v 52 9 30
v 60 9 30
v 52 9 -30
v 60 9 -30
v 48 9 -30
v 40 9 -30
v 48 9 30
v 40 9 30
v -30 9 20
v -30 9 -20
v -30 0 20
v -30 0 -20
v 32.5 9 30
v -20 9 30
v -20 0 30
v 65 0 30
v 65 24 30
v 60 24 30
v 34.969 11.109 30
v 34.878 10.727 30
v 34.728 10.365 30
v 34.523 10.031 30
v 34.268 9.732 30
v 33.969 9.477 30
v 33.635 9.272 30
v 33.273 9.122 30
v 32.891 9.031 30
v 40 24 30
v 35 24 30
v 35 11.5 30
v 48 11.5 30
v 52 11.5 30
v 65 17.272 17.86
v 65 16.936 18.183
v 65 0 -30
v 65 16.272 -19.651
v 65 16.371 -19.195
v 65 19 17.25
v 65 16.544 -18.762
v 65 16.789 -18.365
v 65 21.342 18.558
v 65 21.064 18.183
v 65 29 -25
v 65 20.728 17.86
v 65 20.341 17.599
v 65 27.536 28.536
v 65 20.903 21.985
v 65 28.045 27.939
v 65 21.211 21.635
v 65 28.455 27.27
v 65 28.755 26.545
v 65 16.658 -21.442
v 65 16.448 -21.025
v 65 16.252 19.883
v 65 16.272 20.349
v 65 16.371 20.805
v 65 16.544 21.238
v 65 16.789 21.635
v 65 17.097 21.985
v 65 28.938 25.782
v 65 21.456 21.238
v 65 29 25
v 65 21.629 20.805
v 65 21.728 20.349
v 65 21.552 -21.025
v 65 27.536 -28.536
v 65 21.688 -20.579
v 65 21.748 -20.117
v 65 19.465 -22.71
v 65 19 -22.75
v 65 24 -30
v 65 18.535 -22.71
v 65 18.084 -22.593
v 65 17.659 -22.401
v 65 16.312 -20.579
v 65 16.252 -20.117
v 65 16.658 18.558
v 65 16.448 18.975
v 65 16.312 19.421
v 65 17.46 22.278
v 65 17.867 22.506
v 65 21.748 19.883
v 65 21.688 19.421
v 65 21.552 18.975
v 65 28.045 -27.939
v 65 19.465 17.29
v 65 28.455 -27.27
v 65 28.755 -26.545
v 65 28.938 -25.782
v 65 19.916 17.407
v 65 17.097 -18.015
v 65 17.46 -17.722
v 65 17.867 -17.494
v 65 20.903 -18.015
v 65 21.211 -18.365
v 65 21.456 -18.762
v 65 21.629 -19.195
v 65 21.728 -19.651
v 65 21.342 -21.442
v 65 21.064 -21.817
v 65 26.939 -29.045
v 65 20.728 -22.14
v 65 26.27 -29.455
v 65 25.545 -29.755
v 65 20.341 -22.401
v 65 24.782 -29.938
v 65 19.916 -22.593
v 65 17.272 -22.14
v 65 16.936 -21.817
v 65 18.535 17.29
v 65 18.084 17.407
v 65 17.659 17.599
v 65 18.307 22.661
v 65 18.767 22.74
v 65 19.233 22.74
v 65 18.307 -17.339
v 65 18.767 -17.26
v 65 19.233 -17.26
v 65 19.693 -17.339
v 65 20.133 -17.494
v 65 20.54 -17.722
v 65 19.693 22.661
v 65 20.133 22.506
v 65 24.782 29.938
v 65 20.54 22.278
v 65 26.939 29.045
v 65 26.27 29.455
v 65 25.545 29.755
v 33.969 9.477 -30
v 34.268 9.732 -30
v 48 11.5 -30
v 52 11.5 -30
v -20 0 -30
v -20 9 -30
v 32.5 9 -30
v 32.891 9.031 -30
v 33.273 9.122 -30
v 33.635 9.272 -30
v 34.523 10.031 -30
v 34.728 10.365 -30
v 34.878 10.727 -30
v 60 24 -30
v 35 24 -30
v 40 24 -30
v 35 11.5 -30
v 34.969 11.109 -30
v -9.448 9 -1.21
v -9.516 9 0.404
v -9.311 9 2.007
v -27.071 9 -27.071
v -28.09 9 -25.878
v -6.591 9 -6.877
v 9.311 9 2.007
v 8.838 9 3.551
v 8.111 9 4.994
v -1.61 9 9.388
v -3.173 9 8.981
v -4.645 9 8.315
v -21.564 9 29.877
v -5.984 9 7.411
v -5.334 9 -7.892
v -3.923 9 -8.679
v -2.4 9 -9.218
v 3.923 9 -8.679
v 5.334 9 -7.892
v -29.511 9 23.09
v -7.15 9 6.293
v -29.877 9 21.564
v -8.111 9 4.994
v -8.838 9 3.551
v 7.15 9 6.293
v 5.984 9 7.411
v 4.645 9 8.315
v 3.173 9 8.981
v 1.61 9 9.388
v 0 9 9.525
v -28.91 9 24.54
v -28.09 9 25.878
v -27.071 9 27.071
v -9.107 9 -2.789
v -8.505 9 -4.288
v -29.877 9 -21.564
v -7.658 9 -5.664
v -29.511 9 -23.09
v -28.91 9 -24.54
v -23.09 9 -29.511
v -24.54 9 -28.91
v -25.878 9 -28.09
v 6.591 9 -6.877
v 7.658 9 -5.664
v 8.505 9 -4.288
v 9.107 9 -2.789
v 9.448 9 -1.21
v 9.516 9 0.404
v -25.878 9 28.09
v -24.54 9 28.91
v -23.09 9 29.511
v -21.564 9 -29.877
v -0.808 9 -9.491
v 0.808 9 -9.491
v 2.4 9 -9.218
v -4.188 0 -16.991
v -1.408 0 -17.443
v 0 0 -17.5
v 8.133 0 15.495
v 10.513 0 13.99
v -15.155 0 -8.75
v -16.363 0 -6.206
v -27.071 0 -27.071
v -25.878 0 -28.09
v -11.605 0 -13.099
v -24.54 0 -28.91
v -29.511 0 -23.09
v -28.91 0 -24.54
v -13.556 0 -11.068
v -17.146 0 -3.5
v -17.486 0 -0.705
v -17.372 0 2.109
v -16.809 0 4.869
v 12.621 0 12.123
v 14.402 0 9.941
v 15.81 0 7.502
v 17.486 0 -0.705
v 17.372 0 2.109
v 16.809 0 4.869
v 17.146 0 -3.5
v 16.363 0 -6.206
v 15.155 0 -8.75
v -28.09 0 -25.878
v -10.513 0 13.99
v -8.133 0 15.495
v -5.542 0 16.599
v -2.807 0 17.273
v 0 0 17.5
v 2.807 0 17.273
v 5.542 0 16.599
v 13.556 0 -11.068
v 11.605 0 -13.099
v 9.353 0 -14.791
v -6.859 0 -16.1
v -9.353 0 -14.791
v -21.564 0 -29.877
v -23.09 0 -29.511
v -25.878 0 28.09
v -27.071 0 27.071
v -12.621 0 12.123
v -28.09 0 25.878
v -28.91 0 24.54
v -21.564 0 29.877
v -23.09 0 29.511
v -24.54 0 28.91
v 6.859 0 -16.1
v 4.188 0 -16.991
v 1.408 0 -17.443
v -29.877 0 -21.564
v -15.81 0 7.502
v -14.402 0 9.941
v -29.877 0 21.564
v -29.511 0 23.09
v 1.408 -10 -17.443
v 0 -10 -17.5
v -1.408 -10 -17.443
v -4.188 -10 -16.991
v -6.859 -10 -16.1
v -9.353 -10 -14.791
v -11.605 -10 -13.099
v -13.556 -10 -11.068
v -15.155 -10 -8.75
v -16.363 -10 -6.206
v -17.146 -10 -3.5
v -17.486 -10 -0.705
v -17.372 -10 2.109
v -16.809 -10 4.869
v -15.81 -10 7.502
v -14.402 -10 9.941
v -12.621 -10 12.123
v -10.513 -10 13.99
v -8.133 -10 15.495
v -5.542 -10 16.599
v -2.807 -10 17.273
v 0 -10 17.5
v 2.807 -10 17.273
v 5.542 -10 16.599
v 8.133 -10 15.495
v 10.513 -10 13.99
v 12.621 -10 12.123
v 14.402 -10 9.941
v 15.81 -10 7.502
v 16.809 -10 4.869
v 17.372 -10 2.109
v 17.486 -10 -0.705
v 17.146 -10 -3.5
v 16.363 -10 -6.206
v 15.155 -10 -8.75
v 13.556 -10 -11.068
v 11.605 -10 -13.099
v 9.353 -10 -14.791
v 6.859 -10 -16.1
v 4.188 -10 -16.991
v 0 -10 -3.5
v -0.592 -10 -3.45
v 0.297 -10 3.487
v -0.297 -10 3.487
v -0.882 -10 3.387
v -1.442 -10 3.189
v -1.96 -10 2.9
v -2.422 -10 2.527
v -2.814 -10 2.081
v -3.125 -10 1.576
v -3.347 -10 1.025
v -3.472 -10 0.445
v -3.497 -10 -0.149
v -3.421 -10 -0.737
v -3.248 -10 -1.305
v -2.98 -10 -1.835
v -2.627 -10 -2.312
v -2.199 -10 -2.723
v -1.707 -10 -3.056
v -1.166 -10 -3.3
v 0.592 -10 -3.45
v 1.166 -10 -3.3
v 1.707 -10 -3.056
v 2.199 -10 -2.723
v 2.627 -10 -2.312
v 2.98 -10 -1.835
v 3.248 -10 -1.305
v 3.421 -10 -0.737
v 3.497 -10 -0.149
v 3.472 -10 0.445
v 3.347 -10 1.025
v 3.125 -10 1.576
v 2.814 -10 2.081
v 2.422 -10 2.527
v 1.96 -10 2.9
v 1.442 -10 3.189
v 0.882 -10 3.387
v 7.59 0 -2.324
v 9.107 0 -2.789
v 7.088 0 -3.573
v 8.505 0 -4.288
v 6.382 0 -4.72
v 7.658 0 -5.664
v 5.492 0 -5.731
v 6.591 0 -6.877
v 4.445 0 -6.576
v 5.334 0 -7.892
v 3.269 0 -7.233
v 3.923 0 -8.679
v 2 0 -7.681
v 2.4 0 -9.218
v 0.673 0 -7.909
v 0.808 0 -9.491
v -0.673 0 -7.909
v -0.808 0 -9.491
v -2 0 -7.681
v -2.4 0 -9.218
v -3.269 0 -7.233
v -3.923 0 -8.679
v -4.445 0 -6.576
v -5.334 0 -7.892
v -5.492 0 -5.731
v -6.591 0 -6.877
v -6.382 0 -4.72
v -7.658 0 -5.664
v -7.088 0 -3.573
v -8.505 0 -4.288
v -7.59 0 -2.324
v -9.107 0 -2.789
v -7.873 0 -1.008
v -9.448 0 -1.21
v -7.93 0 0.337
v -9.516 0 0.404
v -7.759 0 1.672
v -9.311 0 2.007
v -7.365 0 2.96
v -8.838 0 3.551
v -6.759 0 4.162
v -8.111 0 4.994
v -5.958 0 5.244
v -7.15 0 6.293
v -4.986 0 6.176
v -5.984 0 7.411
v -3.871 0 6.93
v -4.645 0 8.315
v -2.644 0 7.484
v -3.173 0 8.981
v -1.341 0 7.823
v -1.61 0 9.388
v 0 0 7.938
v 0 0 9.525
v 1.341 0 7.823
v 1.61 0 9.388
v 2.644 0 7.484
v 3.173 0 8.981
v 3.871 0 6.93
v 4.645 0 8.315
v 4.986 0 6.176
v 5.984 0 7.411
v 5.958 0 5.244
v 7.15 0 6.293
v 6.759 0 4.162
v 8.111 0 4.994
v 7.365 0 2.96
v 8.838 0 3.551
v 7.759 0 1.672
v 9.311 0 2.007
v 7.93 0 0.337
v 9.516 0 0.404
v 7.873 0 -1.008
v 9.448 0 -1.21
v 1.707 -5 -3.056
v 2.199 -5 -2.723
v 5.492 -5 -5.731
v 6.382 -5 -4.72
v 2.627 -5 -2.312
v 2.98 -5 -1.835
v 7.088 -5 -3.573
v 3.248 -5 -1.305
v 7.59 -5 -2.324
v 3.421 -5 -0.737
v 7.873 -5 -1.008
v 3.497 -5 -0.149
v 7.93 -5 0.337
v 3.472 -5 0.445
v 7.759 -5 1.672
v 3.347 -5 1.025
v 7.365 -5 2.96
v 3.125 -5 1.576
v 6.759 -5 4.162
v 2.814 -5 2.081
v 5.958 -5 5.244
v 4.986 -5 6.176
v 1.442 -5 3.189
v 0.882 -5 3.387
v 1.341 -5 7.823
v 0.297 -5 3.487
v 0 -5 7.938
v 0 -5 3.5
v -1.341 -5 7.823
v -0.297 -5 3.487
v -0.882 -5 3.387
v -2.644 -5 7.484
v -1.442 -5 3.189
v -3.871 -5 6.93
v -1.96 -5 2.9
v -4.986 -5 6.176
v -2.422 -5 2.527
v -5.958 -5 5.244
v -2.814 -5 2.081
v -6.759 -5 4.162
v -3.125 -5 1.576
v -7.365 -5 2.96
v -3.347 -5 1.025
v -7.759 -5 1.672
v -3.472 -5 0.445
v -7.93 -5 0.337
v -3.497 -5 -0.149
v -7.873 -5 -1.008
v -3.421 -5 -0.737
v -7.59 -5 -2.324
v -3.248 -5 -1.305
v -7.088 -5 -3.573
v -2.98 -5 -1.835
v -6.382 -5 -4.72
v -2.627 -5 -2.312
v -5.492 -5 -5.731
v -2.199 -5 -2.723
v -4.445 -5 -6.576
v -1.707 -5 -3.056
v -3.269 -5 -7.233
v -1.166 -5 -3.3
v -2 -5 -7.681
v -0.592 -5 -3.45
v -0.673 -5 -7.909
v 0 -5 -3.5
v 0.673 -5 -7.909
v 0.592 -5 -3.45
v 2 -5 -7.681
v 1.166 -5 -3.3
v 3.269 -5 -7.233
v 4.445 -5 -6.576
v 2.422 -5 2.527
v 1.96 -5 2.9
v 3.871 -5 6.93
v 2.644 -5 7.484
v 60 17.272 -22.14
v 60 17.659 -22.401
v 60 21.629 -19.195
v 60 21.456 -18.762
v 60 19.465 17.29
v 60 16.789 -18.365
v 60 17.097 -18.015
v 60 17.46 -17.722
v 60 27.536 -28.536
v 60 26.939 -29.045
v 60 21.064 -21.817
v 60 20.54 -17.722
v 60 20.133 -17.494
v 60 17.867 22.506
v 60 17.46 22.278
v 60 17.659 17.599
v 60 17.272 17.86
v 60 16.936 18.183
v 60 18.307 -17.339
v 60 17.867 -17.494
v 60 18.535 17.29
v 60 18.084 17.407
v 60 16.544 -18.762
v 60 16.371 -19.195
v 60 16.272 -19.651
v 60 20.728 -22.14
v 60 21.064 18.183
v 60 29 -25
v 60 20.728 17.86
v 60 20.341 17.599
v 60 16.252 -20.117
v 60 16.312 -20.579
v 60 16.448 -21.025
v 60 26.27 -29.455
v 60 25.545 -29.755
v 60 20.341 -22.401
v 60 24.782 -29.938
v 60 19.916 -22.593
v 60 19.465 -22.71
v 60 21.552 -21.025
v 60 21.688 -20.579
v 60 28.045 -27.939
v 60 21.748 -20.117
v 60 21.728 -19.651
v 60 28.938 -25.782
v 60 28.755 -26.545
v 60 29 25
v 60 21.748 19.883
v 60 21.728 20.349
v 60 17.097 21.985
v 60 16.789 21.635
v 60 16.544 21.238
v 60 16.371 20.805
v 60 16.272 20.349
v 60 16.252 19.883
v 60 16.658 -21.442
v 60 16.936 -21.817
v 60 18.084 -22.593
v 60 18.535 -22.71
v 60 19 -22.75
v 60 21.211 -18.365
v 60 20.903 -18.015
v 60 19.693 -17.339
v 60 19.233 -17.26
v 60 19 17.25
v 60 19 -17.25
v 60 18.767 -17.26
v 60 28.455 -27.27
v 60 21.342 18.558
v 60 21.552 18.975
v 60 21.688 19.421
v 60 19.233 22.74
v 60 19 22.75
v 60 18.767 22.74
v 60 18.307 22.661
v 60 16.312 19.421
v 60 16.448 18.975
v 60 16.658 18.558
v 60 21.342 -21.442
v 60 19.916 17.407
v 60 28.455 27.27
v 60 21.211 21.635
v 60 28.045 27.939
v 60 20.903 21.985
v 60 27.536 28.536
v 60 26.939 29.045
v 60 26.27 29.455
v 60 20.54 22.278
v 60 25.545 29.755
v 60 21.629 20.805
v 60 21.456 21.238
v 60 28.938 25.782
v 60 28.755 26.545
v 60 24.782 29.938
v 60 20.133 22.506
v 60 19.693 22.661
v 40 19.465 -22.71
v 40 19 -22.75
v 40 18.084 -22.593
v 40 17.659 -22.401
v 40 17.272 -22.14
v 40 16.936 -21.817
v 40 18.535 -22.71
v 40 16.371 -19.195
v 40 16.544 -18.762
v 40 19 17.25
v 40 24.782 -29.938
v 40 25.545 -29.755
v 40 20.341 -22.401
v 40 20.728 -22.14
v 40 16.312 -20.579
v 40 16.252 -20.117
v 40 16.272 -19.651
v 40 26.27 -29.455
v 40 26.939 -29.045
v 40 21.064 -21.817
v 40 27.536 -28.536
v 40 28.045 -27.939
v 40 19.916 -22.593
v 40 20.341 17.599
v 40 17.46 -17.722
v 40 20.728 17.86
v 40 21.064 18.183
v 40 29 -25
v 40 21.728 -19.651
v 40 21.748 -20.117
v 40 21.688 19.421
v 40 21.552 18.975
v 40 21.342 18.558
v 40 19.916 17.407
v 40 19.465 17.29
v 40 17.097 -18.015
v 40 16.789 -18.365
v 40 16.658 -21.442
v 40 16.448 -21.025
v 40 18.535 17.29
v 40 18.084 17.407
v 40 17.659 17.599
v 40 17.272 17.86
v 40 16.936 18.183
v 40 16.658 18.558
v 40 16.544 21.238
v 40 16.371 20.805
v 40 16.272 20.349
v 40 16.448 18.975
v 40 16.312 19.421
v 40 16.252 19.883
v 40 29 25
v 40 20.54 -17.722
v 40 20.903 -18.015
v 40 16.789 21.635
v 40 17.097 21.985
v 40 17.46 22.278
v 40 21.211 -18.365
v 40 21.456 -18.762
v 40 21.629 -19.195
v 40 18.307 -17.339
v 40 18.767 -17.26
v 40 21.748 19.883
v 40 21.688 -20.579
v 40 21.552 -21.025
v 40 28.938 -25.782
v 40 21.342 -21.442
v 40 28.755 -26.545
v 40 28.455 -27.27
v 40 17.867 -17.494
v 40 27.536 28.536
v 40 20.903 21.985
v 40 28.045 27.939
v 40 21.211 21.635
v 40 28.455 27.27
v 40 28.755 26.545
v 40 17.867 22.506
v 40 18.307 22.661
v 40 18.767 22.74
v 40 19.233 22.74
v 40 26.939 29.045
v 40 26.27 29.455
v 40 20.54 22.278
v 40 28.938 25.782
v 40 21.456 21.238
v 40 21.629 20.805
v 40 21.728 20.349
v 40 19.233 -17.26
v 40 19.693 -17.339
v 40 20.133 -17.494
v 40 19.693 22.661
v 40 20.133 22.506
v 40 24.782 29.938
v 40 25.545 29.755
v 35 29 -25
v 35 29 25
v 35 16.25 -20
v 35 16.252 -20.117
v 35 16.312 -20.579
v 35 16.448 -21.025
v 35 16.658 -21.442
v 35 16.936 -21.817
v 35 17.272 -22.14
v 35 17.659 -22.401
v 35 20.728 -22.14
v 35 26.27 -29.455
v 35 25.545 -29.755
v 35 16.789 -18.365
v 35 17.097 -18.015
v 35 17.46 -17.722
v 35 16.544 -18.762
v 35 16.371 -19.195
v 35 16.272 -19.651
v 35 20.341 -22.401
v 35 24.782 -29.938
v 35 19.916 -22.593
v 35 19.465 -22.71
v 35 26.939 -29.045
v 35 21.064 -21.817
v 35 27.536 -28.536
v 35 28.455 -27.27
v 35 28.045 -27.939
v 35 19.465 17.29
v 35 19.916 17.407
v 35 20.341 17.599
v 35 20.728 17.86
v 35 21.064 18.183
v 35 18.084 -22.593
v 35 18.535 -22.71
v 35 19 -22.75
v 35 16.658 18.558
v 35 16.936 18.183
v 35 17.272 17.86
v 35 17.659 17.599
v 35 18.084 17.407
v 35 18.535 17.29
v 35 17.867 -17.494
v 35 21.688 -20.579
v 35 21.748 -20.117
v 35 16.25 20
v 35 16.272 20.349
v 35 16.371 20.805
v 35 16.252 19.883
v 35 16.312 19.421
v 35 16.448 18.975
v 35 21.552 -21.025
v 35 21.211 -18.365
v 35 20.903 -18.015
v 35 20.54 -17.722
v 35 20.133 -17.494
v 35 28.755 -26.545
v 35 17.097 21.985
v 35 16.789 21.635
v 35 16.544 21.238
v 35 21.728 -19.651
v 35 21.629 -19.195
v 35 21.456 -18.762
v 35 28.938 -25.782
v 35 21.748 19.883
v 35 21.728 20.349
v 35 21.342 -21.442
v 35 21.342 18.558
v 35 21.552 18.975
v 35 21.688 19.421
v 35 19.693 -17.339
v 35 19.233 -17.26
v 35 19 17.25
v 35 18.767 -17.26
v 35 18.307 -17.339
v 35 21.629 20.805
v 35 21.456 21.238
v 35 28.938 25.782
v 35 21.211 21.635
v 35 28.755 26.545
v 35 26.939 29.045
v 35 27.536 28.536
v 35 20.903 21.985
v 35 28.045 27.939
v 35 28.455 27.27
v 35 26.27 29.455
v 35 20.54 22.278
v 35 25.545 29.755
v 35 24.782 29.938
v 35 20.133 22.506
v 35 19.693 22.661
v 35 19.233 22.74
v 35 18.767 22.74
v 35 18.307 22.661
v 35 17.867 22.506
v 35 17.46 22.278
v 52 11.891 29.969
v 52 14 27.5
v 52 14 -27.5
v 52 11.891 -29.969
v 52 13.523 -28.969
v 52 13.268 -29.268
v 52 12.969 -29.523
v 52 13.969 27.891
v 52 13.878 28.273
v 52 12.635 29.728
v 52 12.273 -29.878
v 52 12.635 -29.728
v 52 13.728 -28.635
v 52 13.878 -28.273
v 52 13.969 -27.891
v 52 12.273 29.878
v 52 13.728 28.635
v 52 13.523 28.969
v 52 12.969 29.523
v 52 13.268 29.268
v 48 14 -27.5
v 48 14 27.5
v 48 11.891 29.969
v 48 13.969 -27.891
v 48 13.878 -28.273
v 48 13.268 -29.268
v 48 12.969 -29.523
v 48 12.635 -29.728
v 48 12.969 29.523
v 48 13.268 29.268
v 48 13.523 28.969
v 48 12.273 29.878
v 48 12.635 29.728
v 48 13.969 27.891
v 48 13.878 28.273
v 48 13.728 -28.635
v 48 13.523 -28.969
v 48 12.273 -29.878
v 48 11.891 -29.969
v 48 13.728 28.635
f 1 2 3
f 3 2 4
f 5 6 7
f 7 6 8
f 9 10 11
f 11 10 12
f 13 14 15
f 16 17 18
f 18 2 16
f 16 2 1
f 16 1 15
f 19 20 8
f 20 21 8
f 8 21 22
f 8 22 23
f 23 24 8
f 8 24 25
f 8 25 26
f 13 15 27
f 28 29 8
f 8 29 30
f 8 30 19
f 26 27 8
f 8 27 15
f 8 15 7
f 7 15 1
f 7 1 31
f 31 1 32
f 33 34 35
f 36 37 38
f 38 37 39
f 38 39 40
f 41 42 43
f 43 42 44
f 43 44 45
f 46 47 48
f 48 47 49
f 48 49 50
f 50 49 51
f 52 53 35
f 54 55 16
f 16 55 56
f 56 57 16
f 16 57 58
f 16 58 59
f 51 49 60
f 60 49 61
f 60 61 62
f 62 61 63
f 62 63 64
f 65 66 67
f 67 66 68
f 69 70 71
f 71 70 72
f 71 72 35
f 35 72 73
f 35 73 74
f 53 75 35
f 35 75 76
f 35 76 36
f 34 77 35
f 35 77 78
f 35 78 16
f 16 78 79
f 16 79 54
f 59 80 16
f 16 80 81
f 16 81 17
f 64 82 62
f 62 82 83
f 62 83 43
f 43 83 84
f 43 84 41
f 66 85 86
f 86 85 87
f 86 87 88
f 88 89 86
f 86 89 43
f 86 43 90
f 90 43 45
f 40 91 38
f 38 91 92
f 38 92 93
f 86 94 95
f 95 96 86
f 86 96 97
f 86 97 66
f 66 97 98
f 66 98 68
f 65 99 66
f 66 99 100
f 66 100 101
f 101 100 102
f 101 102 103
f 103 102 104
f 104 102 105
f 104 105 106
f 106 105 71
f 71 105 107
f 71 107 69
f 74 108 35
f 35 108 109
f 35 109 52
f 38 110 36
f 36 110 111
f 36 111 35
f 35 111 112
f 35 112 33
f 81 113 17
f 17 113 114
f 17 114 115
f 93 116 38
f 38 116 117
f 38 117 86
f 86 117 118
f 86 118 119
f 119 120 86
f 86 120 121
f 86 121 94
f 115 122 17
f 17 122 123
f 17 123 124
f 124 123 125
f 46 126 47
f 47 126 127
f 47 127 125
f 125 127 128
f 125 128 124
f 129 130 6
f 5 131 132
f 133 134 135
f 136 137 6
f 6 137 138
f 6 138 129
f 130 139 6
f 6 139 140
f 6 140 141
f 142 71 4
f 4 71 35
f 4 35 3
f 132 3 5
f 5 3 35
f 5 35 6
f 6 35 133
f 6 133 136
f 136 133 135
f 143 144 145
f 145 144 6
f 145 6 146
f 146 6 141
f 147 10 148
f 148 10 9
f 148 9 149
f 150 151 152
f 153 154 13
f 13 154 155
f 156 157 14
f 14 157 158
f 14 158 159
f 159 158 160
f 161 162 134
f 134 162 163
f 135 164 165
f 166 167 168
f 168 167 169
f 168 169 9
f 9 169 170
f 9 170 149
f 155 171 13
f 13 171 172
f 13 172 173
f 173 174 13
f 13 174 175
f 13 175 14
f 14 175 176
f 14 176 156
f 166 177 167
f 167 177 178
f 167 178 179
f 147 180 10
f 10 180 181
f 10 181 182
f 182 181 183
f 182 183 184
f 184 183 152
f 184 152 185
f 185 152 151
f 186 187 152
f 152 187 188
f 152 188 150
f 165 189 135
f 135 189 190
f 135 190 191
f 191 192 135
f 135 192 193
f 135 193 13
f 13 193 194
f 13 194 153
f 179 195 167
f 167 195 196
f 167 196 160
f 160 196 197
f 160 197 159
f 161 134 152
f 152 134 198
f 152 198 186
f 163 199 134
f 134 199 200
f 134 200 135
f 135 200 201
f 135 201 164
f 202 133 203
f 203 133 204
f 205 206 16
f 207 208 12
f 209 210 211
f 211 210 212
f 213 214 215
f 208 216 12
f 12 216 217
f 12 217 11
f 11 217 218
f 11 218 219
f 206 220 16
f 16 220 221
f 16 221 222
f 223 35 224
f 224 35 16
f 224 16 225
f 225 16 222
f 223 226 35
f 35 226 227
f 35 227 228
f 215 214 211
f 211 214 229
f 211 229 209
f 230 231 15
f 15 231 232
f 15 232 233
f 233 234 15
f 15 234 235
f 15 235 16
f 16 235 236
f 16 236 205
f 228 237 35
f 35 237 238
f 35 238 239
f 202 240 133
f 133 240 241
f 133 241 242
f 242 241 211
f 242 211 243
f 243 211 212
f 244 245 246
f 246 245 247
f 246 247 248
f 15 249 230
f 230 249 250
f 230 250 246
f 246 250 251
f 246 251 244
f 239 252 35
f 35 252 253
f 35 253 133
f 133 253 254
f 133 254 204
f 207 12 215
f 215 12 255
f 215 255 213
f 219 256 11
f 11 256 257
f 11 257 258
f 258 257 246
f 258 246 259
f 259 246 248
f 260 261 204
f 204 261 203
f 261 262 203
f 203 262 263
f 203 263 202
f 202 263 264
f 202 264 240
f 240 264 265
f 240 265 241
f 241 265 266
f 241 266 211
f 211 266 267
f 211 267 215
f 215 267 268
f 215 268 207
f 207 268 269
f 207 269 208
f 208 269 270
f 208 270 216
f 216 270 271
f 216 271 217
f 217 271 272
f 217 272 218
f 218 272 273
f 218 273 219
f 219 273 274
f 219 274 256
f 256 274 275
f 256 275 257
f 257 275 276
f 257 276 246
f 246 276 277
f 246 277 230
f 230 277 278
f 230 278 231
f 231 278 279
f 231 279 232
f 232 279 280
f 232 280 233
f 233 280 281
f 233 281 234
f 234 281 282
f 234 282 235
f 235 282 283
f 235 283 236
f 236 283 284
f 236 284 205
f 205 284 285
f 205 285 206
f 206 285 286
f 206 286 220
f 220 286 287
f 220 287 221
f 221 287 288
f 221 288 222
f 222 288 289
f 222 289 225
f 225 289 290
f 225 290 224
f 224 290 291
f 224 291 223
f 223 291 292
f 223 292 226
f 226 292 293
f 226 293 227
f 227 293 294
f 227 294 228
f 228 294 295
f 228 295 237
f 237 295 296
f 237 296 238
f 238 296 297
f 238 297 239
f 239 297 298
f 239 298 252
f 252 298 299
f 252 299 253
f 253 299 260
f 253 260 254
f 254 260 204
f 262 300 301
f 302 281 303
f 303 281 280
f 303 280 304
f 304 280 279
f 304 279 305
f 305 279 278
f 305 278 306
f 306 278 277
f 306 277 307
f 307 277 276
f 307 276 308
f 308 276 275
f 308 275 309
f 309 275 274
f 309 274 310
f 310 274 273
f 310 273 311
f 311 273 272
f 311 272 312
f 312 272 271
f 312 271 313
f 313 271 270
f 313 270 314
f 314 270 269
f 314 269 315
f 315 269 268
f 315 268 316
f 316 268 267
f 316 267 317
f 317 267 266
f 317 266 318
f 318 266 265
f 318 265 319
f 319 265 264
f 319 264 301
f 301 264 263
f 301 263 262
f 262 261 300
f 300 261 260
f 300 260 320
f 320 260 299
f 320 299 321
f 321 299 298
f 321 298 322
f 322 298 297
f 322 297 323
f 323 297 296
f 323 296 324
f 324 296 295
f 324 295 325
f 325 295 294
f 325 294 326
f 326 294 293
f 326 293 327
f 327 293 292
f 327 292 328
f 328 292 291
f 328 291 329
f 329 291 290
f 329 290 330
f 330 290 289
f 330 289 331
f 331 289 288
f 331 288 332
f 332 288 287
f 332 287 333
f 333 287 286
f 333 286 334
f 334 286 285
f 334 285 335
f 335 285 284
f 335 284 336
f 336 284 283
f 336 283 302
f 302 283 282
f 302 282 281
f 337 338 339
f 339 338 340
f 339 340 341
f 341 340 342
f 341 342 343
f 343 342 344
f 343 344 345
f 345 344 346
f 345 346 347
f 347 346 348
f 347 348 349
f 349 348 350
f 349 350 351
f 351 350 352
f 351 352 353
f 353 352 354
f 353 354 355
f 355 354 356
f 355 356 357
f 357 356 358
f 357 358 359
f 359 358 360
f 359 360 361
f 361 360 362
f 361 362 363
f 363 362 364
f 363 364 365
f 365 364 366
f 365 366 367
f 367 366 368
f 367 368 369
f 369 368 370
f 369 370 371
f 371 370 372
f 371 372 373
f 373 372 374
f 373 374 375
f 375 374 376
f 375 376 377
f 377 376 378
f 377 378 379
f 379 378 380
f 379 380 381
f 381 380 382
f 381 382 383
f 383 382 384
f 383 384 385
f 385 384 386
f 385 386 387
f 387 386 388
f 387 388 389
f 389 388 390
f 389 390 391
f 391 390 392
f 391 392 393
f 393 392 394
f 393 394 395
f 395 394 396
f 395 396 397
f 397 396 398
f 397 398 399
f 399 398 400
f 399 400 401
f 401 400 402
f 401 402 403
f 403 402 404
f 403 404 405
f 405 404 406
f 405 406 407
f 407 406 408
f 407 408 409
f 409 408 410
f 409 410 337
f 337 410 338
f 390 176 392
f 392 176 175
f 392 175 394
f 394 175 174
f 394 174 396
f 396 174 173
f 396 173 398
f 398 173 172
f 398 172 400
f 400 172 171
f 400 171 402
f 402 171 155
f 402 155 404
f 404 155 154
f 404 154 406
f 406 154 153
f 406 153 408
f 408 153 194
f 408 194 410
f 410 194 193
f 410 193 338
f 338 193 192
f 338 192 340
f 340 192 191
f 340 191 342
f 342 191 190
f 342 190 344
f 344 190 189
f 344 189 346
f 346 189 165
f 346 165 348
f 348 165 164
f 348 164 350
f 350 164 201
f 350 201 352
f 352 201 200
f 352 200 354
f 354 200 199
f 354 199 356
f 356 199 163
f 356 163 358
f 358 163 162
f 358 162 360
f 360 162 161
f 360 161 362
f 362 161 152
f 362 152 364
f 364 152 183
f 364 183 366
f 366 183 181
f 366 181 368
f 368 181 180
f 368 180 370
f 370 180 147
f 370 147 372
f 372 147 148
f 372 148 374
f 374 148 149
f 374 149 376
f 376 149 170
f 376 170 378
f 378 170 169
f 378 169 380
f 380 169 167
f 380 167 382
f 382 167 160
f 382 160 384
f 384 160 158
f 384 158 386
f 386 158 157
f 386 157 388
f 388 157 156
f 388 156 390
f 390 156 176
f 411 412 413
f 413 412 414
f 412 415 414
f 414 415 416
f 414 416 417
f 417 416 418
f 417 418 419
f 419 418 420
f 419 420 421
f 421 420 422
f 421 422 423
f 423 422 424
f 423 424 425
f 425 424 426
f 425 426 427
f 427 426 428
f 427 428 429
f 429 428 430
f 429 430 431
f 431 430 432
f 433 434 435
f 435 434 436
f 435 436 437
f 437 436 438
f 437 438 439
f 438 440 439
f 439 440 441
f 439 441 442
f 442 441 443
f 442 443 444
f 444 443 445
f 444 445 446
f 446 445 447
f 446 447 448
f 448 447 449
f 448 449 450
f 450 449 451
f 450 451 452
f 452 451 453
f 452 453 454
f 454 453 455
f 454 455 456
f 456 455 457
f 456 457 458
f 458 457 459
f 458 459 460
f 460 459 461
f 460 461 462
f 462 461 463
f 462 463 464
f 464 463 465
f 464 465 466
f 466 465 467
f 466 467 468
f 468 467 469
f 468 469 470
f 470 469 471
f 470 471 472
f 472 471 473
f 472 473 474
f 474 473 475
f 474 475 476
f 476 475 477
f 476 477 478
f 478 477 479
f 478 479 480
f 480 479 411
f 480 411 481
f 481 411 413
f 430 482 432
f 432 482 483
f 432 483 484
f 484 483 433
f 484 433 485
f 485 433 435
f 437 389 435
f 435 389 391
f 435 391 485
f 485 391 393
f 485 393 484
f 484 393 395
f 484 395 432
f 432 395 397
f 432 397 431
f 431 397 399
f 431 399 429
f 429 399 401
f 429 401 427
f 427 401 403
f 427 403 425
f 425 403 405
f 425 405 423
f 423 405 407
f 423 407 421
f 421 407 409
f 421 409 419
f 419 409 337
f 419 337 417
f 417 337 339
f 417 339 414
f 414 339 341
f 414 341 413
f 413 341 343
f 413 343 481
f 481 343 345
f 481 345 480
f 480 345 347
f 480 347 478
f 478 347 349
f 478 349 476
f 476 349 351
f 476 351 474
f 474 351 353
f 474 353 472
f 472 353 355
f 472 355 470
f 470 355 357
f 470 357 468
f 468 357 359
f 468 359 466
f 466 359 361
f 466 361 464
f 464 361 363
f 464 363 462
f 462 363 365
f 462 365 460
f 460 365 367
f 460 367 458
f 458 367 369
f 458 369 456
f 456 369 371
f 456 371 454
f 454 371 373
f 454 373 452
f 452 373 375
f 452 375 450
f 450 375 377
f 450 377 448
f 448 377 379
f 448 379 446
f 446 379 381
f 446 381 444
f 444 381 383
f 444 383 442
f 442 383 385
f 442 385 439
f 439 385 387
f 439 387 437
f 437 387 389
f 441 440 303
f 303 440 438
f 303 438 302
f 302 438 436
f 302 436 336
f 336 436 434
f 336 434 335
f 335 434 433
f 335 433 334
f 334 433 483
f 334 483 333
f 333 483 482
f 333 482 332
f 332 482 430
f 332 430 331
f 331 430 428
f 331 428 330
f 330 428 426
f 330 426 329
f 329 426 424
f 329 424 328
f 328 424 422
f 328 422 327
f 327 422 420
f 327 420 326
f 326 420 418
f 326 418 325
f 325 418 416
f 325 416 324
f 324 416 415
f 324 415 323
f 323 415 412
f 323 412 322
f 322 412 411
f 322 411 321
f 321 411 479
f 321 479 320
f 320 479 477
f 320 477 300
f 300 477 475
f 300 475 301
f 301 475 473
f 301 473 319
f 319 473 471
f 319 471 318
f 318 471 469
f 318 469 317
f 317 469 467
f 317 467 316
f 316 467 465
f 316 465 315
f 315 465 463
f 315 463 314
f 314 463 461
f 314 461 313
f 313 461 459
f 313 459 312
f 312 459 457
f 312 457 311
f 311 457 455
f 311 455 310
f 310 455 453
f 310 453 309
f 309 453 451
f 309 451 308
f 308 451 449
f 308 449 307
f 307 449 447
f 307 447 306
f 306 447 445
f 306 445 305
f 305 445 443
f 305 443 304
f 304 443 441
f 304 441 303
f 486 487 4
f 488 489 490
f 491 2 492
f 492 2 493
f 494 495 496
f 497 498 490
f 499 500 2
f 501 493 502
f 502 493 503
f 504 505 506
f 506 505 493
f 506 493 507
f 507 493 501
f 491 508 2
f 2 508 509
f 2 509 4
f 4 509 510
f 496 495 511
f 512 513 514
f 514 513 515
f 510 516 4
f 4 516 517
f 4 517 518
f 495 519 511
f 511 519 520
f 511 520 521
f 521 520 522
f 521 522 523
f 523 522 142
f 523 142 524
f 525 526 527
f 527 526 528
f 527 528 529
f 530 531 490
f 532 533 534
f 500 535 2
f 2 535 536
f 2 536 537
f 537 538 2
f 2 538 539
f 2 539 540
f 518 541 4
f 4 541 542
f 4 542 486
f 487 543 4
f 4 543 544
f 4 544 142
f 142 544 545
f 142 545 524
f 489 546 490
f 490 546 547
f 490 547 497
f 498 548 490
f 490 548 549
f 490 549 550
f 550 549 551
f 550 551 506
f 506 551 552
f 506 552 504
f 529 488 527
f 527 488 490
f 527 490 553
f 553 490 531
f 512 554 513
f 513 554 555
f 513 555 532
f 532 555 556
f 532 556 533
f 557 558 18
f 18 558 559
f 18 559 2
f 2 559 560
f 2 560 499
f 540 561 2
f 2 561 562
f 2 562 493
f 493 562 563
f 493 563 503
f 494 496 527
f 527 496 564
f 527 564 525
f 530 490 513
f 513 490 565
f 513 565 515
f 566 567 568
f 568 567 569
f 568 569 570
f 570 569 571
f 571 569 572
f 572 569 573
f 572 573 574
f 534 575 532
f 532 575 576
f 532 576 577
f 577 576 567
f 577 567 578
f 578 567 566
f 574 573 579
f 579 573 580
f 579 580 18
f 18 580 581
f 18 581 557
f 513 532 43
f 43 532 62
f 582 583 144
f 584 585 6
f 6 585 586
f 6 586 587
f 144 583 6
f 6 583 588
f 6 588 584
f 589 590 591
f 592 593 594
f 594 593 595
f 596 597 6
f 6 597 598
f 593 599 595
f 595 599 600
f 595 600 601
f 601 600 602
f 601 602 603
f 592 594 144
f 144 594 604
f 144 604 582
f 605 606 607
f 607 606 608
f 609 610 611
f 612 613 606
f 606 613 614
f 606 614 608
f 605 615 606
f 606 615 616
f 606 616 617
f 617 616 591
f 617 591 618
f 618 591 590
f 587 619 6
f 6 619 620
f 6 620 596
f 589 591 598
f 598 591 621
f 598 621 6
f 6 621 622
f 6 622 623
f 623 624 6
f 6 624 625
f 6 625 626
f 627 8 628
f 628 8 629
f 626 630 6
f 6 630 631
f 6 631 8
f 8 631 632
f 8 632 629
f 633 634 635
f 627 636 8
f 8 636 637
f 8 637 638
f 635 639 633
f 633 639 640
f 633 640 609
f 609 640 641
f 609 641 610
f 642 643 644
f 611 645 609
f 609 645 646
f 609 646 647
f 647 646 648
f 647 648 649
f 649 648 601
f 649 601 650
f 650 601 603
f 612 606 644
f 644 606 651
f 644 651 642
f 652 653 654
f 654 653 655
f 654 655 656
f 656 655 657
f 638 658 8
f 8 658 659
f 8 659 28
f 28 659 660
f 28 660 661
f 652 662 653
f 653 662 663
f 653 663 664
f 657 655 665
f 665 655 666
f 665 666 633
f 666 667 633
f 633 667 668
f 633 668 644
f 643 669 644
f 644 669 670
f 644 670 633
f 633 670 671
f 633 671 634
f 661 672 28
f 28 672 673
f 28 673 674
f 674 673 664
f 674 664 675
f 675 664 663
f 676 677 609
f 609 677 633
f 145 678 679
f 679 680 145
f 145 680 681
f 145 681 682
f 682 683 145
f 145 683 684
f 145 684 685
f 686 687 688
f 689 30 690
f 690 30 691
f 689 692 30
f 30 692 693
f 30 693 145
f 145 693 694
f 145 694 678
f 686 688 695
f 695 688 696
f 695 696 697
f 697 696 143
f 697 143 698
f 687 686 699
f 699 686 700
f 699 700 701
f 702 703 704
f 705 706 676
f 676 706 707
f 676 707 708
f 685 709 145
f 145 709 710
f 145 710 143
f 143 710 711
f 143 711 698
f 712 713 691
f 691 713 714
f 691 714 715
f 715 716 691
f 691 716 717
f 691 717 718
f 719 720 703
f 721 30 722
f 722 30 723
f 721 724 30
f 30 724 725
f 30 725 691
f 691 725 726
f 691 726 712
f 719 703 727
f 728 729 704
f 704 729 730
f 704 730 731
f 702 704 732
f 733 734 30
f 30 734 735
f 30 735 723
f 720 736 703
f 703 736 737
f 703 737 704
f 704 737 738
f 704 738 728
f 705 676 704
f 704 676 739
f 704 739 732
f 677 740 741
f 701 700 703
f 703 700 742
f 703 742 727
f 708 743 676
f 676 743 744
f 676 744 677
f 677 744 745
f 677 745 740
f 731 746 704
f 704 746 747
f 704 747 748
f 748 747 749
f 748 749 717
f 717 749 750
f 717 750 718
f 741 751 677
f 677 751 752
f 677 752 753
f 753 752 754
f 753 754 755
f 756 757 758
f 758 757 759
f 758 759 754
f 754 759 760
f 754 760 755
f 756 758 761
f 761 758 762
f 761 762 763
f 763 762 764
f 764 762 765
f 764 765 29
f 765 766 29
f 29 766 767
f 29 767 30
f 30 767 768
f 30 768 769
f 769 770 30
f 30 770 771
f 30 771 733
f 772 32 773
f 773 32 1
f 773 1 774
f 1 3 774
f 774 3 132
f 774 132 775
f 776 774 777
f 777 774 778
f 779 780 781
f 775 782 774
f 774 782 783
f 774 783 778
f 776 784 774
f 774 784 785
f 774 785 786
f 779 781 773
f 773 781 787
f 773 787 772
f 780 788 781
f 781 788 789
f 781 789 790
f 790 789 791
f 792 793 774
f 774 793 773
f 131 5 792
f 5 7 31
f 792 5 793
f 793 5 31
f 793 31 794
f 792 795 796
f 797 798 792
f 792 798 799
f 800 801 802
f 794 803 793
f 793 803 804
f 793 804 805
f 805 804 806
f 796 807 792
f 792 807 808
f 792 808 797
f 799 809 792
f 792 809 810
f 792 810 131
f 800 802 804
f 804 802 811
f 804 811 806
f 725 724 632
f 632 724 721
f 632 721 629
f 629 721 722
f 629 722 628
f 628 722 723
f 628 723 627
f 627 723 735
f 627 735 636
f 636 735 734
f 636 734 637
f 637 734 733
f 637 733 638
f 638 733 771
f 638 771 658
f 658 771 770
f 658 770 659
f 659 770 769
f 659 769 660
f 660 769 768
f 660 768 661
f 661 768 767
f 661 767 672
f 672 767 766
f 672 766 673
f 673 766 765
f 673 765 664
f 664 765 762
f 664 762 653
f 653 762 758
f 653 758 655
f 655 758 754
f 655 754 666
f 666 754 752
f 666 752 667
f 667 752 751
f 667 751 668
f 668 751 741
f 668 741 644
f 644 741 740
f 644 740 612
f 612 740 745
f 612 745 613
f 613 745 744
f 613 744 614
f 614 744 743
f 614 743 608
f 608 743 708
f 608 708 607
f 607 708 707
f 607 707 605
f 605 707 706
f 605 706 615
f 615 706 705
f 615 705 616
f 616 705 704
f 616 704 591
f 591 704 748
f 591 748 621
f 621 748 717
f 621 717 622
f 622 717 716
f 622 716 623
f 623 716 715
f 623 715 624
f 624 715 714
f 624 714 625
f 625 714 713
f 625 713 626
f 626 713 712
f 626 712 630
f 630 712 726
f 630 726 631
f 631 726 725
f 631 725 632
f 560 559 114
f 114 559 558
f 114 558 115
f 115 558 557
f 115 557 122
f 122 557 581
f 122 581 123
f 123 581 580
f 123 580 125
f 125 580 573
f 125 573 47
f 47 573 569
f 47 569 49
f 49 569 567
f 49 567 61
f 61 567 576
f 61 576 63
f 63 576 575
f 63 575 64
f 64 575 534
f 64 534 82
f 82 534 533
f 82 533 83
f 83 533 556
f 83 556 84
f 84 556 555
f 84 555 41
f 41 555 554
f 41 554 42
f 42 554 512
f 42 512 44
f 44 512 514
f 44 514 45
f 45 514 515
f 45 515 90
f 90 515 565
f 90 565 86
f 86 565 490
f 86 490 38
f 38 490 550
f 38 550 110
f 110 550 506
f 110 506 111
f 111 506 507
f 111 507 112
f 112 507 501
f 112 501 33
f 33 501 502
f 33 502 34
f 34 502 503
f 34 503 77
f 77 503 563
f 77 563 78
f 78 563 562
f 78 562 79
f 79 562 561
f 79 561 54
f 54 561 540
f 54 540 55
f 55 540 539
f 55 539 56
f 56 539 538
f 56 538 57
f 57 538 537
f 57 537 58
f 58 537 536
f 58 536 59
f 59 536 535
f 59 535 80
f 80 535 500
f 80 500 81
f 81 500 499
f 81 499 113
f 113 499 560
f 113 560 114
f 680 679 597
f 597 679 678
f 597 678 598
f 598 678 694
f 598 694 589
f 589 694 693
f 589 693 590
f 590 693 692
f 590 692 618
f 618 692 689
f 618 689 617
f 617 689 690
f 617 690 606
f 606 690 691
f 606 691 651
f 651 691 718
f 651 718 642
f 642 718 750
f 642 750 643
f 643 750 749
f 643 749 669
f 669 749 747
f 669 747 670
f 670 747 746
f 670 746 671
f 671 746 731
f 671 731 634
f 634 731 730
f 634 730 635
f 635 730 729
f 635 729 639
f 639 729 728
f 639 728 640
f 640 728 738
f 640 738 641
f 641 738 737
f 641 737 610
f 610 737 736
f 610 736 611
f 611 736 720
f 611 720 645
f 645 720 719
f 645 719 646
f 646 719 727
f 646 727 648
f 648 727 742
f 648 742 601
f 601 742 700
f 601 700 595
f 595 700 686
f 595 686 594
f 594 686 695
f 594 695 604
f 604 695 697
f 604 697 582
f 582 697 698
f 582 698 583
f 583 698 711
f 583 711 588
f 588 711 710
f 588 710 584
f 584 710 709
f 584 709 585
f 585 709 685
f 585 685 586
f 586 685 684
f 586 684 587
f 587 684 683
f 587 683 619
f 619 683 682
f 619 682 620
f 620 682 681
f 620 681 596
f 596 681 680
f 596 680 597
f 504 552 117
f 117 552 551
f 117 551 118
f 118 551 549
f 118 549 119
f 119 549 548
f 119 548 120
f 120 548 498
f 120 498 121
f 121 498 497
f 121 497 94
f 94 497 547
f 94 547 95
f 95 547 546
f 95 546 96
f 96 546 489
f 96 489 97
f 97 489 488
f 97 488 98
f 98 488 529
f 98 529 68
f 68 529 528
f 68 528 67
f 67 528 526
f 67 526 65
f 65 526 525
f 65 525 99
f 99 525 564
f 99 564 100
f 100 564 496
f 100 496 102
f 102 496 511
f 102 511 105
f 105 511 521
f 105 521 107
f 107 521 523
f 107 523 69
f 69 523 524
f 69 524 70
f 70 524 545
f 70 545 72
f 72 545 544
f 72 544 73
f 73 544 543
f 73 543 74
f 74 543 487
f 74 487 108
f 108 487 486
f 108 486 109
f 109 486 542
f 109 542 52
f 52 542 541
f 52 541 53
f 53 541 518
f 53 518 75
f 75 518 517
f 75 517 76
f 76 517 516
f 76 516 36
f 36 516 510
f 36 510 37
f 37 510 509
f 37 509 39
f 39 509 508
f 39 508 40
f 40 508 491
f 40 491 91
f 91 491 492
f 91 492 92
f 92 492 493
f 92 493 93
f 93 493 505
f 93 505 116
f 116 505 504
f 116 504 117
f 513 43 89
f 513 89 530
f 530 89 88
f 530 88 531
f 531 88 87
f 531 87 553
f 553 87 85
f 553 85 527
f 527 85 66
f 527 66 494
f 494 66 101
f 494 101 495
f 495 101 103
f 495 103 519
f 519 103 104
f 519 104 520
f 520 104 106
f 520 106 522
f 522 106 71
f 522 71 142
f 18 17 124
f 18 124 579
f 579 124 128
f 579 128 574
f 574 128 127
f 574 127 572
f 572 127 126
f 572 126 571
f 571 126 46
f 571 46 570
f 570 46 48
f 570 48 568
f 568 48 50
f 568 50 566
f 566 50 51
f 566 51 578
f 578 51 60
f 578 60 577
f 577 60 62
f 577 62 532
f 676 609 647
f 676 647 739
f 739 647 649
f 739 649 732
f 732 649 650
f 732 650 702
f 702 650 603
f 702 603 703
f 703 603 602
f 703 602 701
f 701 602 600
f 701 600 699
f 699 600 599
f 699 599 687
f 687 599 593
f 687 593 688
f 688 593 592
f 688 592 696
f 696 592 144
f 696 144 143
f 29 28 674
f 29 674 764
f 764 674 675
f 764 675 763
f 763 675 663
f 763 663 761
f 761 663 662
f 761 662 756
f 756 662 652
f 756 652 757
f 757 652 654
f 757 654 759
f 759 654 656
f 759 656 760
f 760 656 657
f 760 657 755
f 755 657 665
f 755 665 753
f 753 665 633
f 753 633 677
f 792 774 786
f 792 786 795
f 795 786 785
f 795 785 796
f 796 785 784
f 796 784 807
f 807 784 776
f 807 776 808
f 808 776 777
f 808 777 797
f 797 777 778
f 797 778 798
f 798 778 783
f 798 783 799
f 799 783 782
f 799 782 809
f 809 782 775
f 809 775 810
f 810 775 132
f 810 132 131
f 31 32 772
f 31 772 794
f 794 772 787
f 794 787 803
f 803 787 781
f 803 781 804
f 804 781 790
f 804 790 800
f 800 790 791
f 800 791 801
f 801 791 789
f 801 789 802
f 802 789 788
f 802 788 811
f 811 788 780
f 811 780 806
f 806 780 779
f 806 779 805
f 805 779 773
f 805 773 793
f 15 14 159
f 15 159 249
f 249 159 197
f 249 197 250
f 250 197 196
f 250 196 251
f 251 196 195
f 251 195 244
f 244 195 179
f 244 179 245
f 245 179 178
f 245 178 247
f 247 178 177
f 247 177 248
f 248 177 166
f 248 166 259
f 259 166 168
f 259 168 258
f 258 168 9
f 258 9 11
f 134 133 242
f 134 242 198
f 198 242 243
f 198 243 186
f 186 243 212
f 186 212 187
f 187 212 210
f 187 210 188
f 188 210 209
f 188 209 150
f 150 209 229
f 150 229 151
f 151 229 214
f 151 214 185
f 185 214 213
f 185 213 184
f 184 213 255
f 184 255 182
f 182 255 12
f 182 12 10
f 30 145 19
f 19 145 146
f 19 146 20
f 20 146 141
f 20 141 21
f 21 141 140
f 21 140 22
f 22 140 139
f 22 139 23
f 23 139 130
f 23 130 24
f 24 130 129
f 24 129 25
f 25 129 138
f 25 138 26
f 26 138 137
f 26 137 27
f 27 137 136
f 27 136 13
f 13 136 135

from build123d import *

# Parameters (mm, degrees)
SKETCH1_W            = 95
SKETCH1_H            = 60
BOSS_EXTRUDE1_DEPTH  = 9
SKETCH5_R            = 17.5
BOSS_EXTRUDE2_DEPTH  = 10
SKETCH6_R            = 7.9375
CUT_EXTRUDE1_DEPTH   = 14
SKETCH8_R            = 9.525
CUT_EXTRUDE2_DEPTH   = 9
CUT_EXTRUDE3_REACH   = 76.068
SKETCH9_R            = 3.5
BOSS_EXTRUDE3_START  = -30
SKETCH10_W           = 5
SKETCH10_H           = 20
SKETCH10_W_2         = 4
SKETCH10_H_2         = 5
BOSS_EXTRUDE3_DEPTH  = 60
M5_CLEARANCE_HOLE1_D = 5.5
FILLET1_R            = 5
FILLET2_R            = 2.5
FILLET3_R            = 10
FILLET4_R            = 2.5


with BuildPart() as part:
    # Sketch1 → Boss-Extrude1 (new body)
    with BuildSketch(Plane(origin=(0, 0, 0), x_dir=(1, 0, 0), z_dir=(0, 1, 0))):
        with Locations((17.5, 0)):
            Rectangle(SKETCH1_W, SKETCH1_H)
    extrude(amount=BOSS_EXTRUDE1_DEPTH)

    # Sketch5 → Boss-Extrude2 (add)
    with BuildSketch(Plane.XZ):
        with Locations(Location((0, 0, 0), (0, 0, 270))):
            Circle(SKETCH5_R)
    extrude(amount=BOSS_EXTRUDE2_DEPTH)

    # Sketch6 → Cut-Extrude1 (cut)
    with BuildSketch(Plane(origin=(0, 9, 0), x_dir=(1, 0, 0), z_dir=(0, 1, 0))):
        with Locations(Location((0, 0, 0), (0, 0, 270))):
            Circle(SKETCH6_R)
    extrude(amount=-CUT_EXTRUDE1_DEPTH, mode=Mode.SUBTRACT)

    # Sketch8 → Cut-Extrude2 (cut)
    with BuildSketch(Plane(origin=(0, 9, 0), x_dir=(1, 0, 0), z_dir=(0, 1, 0))):
        with Locations(Location((0, 0, 0), (0, 0, 270))):
            Circle(SKETCH8_R)
    extrude(amount=-CUT_EXTRUDE2_DEPTH, mode=Mode.SUBTRACT)

    # Sketch9 → Cut-Extrude3 (cut, up to next)
    with BuildSketch(Plane.XZ.offset(10), mode=Mode.PRIVATE) as cut_extrude3_sk1:
        with Locations(Location((0, 0, 0), (0, 0, 270))):
            Circle(SKETCH9_R)
    cut_extrude3_tool1 = extrude(cut_extrude3_sk1.sketch, amount=-CUT_EXTRUDE3_REACH, mode=Mode.PRIVATE) & part.part
    add(cut_extrude3_tool1.solids().sort_by_distance((0, -10, 0))[0], mode=Mode.SUBTRACT)

    # Sketch10 → Boss-Extrude3 (add)
    with BuildSketch(Plane.XY.offset(BOSS_EXTRUDE3_START)):
        with Locations((62.5, 19)):
            Rectangle(SKETCH10_W, SKETCH10_H)
        with Locations((37.5, 19)):
            Rectangle(SKETCH10_W, SKETCH10_H)
        with Locations((50, 11.5)):
            Rectangle(SKETCH10_W_2, SKETCH10_H_2)
    extrude(amount=BOSS_EXTRUDE3_DEPTH)

    # M5 Clearance Hole1 (through all)
    with Locations(Plane(origin=(65, 0, 0), x_dir=(0, 0, -1), z_dir=(1, 0, 0))):
        with Locations((-20, 19)):
            m5_clearance_hole1 = Hole(M5_CLEARANCE_HOLE1_D / 2)

    # Mirror1: M5 Clearance Hole1 across plane
    add(m5_clearance_hole1.mirror(Plane.XY), mode=Mode.SUBTRACT)

    # Fillet1
    fillet1_edges = [part.edges().sort_by_distance(p)[0] for p in [
        (62.5, 29, -30),
        (62.5, 29, 30),
        (37.5, 29, -30),
        (37.5, 29, 30),
    ]]
    fillet(fillet1_edges, radius=FILLET1_R)

    # Fillet2
    fillet2_edges = [part.edges().sort_by_distance(p)[0] for p in [
        (50, 14, -30),
        (50, 14, 30),
    ]]
    fillet(fillet2_edges, radius=FILLET2_R)

    # Fillet3
    fillet3_edges = [part.edges().sort_by_distance(p)[0] for p in [
        (-30, 4.5, 30),
        (-30, 4.5, -30),
    ]]
    fillet(fillet3_edges, radius=FILLET3_R)

    # Fillet4
    fillet4_edges = [part.edges().sort_by_distance(p)[0] for p in [
        (35, 9, 0),
    ]]
    fillet(fillet4_edges, radius=FILLET4_R)


solid = part.part
